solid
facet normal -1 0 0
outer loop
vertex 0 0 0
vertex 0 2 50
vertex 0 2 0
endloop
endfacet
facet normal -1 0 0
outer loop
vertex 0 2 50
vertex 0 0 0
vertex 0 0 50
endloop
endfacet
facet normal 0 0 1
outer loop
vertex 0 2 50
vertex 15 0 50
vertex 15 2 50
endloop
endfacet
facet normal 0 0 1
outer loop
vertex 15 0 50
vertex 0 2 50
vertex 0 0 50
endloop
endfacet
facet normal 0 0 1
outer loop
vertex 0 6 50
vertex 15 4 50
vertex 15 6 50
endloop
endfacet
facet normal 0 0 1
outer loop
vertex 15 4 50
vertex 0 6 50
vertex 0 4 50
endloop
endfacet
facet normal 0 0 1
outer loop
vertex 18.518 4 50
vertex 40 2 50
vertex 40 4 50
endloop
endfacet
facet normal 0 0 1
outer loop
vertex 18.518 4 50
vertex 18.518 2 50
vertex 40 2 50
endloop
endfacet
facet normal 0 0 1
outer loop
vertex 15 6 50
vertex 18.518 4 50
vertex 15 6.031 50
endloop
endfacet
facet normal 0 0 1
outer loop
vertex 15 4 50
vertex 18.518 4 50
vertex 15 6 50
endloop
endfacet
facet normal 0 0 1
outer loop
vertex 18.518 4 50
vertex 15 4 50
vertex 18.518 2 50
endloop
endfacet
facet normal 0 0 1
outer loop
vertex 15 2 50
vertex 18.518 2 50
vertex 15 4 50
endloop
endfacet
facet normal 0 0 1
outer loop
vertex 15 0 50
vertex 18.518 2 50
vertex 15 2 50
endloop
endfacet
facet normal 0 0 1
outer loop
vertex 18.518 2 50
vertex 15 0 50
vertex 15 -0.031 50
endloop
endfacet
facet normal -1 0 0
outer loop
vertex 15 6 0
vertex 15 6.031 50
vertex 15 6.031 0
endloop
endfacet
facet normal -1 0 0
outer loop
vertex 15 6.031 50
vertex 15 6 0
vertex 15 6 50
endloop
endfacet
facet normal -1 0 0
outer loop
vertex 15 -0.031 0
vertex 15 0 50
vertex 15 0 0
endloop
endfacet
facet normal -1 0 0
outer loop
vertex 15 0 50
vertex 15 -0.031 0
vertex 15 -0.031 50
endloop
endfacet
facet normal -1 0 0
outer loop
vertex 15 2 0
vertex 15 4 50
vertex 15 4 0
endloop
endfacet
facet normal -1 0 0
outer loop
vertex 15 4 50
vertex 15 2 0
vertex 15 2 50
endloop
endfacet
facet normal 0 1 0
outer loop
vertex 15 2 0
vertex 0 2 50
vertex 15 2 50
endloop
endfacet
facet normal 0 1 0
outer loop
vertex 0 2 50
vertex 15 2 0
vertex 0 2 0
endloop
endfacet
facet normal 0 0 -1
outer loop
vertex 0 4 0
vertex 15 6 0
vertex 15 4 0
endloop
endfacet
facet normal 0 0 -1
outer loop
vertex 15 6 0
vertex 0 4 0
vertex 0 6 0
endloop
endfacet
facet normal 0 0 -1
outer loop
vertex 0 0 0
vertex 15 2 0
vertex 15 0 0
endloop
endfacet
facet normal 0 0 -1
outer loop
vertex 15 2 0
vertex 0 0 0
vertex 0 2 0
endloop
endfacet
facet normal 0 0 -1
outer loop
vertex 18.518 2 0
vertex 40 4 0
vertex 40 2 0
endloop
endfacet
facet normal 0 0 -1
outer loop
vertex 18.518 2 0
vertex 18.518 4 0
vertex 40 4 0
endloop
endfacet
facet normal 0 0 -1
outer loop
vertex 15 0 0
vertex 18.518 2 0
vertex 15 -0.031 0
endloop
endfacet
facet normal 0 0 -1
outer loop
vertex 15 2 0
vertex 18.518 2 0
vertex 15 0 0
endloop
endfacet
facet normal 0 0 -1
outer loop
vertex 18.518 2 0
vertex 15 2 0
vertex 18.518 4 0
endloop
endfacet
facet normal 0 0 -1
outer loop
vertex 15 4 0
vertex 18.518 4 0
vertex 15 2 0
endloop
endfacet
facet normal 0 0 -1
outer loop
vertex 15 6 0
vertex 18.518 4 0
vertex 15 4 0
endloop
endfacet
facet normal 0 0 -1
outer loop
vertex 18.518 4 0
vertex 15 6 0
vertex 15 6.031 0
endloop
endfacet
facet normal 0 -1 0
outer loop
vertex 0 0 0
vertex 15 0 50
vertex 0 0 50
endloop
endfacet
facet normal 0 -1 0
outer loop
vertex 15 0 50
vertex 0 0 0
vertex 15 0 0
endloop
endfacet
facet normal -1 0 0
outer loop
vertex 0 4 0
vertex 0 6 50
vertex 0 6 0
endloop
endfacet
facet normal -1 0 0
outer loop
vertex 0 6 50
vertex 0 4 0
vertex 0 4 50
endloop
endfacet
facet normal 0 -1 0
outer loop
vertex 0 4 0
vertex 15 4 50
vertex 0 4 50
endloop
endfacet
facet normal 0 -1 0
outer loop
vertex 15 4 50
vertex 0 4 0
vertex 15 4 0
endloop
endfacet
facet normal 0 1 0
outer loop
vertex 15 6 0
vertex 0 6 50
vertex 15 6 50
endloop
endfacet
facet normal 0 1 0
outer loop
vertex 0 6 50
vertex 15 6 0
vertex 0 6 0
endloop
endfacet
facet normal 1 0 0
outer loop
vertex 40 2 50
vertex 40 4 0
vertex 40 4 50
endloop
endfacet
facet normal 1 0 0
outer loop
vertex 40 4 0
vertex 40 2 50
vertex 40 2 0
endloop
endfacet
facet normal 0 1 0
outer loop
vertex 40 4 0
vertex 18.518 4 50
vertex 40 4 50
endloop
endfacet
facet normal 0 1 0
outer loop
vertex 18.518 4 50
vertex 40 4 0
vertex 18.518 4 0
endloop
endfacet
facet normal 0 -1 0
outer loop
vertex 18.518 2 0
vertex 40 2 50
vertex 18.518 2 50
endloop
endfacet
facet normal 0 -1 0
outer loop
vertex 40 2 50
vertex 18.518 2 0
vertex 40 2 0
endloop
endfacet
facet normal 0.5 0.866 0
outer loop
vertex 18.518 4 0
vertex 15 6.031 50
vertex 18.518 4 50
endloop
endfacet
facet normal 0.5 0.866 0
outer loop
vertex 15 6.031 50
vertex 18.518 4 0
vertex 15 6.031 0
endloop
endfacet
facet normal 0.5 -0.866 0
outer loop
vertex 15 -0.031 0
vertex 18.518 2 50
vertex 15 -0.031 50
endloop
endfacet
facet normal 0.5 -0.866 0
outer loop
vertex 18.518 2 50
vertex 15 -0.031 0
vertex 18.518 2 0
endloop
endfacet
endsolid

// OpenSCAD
$fn=3;

cube([15,2,50]);
translate([0,4,0])cube([15,2,50]);
translate([15,2,0])cube([25,2,50]);

translate([16.75,3,0])cylinder(50,7/2,7/2);
